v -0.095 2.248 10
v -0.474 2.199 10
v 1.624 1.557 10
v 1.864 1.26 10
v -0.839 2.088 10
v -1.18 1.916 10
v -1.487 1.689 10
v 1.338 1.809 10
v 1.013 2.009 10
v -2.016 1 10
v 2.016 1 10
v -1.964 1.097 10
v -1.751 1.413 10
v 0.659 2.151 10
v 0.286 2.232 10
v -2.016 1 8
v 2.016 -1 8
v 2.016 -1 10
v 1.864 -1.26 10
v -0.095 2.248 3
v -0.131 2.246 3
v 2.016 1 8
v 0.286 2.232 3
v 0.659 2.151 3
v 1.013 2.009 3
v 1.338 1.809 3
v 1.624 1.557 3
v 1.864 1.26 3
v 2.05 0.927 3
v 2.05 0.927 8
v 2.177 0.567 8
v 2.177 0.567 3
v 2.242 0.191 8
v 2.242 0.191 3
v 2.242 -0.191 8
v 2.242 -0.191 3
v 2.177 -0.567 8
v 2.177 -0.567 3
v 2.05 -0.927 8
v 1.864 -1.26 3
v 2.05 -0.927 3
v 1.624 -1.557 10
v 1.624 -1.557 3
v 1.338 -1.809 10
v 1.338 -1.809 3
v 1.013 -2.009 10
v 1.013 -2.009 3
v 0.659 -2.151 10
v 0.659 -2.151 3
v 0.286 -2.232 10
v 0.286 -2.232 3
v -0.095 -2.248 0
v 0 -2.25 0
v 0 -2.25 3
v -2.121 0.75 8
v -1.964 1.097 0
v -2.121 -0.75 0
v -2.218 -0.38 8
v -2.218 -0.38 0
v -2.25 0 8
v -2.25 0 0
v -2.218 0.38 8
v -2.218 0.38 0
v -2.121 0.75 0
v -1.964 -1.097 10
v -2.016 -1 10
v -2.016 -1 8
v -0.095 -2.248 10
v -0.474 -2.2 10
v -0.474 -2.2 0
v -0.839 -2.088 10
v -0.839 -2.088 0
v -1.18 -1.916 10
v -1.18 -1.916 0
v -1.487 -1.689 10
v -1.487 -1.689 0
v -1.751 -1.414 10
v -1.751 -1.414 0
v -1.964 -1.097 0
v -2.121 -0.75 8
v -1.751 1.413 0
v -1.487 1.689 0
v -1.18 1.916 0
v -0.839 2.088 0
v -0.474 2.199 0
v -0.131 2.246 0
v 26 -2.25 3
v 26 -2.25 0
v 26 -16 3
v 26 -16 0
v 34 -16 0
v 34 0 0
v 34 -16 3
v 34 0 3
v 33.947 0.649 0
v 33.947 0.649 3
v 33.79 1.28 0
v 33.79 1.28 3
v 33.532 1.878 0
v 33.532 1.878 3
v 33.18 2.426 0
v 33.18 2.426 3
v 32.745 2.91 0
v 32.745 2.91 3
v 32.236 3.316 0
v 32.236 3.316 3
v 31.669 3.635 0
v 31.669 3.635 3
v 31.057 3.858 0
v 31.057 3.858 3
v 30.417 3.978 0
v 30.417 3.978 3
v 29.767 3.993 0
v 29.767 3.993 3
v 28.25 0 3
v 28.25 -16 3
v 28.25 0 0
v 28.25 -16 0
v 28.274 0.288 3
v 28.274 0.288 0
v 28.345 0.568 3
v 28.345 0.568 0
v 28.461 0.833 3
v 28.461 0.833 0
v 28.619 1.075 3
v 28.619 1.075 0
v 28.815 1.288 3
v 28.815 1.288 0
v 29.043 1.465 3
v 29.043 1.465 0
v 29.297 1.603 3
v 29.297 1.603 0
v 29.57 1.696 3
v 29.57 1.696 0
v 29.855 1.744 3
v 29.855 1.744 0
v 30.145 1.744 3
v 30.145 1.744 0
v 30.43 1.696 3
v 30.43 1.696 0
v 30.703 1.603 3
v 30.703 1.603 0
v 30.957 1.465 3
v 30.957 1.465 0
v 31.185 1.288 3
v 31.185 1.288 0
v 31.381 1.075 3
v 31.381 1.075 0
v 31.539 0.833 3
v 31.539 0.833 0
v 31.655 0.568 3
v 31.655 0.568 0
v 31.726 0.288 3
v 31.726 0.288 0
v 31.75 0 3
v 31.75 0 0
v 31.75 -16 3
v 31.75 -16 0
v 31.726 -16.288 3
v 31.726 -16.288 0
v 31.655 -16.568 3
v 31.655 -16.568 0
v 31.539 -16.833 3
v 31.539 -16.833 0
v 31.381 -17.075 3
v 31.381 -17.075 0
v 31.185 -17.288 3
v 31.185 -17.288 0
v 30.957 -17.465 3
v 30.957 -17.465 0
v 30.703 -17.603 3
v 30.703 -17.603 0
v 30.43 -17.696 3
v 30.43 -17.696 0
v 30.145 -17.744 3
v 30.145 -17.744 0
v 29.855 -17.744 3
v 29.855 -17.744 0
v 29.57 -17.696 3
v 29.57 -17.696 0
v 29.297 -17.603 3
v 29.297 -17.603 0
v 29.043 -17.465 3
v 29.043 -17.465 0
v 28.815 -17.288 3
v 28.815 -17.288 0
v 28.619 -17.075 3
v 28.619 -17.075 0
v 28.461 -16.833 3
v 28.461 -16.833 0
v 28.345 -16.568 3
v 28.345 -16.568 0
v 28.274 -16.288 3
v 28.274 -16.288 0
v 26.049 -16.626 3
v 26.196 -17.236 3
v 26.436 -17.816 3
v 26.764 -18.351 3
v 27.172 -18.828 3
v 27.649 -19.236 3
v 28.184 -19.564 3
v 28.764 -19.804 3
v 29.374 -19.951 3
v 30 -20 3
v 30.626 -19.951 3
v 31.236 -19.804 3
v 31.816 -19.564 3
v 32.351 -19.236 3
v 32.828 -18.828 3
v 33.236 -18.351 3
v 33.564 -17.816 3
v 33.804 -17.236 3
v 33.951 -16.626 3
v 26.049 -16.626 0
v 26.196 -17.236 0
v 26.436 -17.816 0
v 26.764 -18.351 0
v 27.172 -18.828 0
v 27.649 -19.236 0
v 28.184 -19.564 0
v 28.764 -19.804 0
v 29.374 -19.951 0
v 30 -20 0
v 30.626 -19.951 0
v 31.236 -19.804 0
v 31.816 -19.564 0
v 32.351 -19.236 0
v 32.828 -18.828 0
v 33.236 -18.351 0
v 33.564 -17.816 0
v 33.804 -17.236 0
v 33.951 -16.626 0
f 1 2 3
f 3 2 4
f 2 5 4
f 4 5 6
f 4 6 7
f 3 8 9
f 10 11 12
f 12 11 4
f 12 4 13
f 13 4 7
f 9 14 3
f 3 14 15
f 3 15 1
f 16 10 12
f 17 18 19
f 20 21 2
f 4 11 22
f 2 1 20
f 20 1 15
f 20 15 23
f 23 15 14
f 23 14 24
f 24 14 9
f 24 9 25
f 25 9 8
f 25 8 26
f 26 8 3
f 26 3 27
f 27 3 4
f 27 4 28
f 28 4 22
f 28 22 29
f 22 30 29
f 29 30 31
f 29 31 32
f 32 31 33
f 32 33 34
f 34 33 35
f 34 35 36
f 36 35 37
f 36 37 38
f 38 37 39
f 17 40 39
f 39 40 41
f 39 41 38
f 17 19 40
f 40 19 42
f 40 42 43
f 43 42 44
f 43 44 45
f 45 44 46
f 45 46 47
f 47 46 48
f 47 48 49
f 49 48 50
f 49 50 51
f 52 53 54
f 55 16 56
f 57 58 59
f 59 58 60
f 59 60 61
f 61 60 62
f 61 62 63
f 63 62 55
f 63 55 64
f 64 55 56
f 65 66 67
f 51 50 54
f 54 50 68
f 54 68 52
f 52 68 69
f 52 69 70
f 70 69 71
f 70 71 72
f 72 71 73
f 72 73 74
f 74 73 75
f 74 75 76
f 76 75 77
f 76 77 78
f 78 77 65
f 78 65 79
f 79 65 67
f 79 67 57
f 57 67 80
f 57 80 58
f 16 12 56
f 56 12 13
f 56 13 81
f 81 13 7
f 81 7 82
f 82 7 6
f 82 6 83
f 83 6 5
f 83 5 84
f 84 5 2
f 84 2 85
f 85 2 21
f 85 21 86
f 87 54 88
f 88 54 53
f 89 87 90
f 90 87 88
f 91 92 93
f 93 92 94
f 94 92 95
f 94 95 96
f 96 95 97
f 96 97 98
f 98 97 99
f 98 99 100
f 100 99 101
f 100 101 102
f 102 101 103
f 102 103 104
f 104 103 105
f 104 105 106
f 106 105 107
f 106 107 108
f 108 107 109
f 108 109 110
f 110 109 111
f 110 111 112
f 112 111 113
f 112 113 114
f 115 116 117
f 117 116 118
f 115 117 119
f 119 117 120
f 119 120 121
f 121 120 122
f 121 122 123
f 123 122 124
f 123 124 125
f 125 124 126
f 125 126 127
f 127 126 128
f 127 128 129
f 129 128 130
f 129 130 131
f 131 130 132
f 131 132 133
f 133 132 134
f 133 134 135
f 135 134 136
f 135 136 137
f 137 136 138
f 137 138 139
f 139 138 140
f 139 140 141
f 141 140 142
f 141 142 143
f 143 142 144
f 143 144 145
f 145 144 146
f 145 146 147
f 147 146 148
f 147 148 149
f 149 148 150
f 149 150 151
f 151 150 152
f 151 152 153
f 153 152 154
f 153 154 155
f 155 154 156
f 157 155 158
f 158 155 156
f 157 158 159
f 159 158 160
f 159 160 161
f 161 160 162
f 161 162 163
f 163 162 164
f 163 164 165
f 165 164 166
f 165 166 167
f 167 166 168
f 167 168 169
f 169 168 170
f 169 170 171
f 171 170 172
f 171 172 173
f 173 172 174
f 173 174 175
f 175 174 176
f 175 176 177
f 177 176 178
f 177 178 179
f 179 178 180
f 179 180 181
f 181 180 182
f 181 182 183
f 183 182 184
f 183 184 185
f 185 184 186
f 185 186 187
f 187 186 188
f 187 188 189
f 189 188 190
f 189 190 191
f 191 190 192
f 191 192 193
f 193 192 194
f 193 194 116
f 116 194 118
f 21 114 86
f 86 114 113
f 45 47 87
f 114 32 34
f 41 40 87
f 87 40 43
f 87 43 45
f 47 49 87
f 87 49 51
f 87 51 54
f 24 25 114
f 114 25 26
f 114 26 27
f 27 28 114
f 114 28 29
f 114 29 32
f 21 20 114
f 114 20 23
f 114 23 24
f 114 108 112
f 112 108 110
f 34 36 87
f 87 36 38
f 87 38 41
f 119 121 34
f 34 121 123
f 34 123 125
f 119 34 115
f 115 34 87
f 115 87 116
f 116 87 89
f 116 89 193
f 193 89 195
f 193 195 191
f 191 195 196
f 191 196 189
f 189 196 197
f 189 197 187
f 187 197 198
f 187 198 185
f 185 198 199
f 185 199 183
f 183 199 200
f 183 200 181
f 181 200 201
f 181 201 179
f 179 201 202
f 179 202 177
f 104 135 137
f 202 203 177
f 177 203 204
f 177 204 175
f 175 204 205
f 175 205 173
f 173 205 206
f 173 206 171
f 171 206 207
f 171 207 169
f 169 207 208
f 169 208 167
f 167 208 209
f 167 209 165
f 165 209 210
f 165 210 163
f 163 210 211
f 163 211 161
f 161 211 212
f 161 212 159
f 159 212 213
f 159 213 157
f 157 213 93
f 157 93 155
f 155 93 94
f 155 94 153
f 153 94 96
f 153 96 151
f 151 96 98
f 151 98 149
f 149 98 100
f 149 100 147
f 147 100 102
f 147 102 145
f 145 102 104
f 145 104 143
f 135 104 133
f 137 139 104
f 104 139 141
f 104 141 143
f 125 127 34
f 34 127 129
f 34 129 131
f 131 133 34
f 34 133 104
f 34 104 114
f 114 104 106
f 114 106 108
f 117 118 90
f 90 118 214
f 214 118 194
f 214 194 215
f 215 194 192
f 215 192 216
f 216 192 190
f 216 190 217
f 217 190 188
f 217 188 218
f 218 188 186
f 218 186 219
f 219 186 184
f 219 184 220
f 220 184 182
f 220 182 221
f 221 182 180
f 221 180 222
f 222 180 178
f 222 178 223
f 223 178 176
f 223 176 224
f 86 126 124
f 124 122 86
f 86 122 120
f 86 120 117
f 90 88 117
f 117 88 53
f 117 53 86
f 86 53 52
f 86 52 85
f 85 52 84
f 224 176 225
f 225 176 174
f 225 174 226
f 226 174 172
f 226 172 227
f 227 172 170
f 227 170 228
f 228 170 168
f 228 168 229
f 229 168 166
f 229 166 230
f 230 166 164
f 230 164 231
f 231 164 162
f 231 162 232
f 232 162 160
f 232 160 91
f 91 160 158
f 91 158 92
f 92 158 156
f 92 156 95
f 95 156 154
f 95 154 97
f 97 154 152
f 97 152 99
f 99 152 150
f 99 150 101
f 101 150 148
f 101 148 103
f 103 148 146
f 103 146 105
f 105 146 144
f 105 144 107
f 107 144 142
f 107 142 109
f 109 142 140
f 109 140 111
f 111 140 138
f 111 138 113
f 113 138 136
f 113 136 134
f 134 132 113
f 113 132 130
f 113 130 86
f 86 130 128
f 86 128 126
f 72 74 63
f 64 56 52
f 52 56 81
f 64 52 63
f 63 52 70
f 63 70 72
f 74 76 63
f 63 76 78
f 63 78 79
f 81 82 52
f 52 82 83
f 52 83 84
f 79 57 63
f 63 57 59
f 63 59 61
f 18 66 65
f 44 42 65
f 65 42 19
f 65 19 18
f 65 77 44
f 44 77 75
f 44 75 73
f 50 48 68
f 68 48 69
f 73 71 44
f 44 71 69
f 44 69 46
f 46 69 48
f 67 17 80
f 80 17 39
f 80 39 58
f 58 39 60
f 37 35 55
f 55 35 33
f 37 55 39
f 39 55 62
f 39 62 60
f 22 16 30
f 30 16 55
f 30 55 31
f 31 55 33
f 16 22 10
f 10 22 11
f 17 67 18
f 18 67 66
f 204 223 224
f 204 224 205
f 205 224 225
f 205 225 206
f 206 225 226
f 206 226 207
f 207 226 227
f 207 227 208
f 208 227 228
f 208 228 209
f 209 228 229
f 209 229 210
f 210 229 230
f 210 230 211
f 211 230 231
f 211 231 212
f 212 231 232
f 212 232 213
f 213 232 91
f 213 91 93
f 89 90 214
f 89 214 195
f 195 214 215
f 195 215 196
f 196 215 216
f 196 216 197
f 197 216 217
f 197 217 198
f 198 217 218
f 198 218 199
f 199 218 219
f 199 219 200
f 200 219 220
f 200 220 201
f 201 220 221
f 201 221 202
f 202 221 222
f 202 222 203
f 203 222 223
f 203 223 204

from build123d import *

# Parameters (mm, degrees)
EXTRUDE_1_DEPTH     = 3
SKETCH_1_3_R        = 2.25
EXTRUDE_2_DEPTH     = 10
SKETCH_2_W          = 5
SKETCH_2_H          = 2
CUT_EXTRUDE_1_DEPTH = 2
FILLET_1_R          = 4


with BuildPart() as part:
    # 草图1 → 凸台-拉伸1 (new body)
    with BuildSketch(Plane.XY):
        with BuildLine():
            Line((29.766666667, 3.993188645), (-0.13125, 2.246168613))
            ThreePointArc((-0.13125, 2.246168613), (-2.249041949, -0.065652955), (0, -2.25))
            Line((0, -2.25), (26, -2.25))
            Line((26, -2.25), (26, -20))
            Line((26, -20), (34, -20))
            Line((34, -20), (34, 0))
            ThreePointArc((34, 0), (32.744691847, 2.909753712), (29.766666667, 3.993188645))
        make_face()
        with BuildLine():
            Line((28.25, -16), (28.25, 0))
            ThreePointArc((28.25, 0), (30, 1.75), (31.75, 0))
            Line((31.75, 0), (31.75, -16))
            ThreePointArc((31.75, -16), (30, -17.75), (28.25, -16))
        make_face(mode=Mode.SUBTRACT)
    extrude(amount=EXTRUDE_1_DEPTH)

    # 草图1<3> → 凸台-拉伸2 (add)
    with BuildSketch(Plane.XY):
        with Locations(Location((0, 0, 0), (0, 0, 93.344152204))):
            Circle(SKETCH_1_3_R)
    extrude(amount=EXTRUDE_2_DEPTH)

    # 草图2 → 切除-拉伸1 (cut)
    with BuildSketch(Plane.XY.offset(10)):
        Rectangle(SKETCH_2_W, SKETCH_2_H)
    extrude(amount=-CUT_EXTRUDE_1_DEPTH, mode=Mode.SUBTRACT)

    # 圆角1
    fillet_1_edges = [part.edges().sort_by_distance(p)[0] for p in [
        (26, -20, 1.5),
        (34, -20, 1.5),
    ]]
    fillet(fillet_1_edges, radius=FILLET_1_R - 0.0001)  # a hair under: the kernel refuses the full size


solid = part.part
